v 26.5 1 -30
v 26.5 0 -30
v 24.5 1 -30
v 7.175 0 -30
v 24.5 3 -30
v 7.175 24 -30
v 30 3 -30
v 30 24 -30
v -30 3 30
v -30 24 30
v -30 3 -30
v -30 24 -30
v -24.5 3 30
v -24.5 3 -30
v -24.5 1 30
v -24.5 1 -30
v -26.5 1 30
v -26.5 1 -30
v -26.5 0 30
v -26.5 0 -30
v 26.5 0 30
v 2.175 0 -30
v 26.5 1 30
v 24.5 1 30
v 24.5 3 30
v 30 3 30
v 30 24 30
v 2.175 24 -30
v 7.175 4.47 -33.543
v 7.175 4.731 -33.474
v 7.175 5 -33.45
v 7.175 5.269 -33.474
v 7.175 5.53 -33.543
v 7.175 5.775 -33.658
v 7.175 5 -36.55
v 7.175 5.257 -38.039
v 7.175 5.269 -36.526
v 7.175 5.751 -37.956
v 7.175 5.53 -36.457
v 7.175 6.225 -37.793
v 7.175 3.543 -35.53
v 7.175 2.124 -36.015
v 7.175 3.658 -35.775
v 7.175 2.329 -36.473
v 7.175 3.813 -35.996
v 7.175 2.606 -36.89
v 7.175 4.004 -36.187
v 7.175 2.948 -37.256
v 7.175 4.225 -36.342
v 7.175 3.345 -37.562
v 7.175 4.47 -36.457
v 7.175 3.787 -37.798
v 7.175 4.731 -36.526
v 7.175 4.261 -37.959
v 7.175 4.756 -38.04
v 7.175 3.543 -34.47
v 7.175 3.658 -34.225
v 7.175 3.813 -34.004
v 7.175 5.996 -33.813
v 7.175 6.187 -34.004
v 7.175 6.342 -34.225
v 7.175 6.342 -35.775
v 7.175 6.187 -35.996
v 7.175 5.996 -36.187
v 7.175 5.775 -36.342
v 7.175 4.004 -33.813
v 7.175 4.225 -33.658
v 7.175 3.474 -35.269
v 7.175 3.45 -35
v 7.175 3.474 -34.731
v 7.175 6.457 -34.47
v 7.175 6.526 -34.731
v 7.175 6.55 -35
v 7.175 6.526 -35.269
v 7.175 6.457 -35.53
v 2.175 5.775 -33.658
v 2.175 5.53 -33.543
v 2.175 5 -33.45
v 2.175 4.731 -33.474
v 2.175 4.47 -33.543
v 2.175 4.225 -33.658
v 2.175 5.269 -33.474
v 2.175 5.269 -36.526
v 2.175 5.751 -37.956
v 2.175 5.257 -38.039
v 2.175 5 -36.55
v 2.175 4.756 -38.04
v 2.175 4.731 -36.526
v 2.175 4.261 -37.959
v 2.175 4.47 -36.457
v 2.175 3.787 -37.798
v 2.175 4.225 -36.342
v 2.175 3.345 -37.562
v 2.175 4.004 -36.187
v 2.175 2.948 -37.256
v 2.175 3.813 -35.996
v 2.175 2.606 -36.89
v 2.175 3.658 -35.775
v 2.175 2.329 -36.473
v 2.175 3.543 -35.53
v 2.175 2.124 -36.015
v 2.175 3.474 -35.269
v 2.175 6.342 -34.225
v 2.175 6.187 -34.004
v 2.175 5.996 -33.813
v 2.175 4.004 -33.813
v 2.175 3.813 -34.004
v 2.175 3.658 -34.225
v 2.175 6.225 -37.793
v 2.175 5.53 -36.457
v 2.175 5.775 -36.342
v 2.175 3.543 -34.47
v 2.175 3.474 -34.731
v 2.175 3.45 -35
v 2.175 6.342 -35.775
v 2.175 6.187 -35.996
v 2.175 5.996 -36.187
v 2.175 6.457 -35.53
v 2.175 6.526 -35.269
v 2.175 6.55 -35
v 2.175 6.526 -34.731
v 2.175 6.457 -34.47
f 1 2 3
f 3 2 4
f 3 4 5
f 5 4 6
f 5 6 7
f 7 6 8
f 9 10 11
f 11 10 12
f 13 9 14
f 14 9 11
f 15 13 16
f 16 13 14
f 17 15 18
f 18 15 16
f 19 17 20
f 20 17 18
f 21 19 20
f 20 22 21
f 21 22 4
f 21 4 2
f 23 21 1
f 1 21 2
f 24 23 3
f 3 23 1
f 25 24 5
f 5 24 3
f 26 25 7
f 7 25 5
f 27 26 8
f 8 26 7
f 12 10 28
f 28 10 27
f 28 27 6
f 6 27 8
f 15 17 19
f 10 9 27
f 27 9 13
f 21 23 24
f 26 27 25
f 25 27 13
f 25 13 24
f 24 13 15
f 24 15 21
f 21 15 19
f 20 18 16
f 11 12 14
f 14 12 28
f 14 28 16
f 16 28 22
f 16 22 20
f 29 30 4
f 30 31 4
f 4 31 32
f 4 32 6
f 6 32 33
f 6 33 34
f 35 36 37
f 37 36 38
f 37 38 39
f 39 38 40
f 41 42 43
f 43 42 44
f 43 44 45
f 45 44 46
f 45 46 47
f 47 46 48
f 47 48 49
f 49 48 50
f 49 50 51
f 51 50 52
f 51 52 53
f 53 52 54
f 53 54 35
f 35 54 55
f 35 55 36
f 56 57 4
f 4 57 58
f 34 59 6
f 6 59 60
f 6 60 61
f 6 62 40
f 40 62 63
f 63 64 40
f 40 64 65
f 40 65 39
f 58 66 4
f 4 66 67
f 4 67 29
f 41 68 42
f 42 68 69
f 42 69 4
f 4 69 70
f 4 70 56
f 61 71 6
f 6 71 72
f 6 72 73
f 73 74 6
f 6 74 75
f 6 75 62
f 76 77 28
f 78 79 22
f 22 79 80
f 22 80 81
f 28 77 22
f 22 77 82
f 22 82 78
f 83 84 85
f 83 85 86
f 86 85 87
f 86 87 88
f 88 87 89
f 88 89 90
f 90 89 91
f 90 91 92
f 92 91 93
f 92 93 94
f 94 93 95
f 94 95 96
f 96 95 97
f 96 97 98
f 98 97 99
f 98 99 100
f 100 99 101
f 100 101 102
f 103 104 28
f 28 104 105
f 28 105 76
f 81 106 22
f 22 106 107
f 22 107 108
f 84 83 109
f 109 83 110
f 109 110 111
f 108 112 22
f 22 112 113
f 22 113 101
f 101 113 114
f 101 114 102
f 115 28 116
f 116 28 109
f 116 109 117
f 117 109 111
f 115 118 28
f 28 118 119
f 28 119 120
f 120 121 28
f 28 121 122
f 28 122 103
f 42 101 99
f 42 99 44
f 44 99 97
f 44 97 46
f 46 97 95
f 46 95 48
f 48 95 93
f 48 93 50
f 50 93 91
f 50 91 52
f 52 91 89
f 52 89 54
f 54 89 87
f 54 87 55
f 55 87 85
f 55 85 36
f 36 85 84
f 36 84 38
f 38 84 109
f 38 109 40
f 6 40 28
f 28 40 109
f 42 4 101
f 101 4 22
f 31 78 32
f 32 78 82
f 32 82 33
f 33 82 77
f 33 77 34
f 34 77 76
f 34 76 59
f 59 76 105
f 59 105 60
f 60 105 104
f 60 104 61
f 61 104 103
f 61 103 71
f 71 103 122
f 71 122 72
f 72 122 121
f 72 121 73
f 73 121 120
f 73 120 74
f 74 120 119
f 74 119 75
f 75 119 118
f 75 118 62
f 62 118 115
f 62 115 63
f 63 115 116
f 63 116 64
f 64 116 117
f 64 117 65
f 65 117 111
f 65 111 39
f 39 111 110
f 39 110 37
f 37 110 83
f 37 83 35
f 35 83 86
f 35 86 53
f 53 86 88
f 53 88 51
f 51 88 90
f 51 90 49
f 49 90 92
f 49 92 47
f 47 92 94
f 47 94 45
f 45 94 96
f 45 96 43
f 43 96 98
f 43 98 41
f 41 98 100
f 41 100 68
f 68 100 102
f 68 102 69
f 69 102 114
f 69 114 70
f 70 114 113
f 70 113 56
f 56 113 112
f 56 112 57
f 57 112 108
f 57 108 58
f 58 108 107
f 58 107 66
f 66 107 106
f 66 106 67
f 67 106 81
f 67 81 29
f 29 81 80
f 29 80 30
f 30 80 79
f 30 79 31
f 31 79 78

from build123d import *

# Parameters (mm, degrees)
BOSS_EXTRUDE1_DEPTH = 30
BOSS_EXTRUDE2_START = 2.175
SKETCH2_R           = 1.55
BOSS_EXTRUDE2_DEPTH = 5


with BuildPart() as part:
    # Sketch1 → Boss-Extrude1 (new, symmetric)
    with BuildSketch(Plane.XY):
        Polygon((-26.5, 1), (-26.5, 0), (26.5, 0), (26.5, 1), (24.5, 1), (24.5, 3), (30, 3), (30, 24), (-30, 24), (-30, 3), (-24.5, 3), (-24.5, 1), align=None)
    extrude(amount=BOSS_EXTRUDE1_DEPTH, both=True)

    # Sketch2 → Boss-Extrude2 (add)
    with BuildSketch(Plane(origin=(0, 0, 0), x_dir=(0, 0, -1), z_dir=(1, 0, 0)).offset(BOSS_EXTRUDE2_START)):
        with BuildLine():
            ThreePointArc((36.015485064, 2.124014936), (37.798326563, 3.786794145), (37.793319851, 6.224689434))
            Line((37.793319851, 6.224689434), (30, 24))
            Line((30, 24), (30, 0))
            Line((30, 0), (36.015485064, 2.124014936))
        make_face()
        with Locations((35, 5)):
            Circle(SKETCH2_R, mode=Mode.SUBTRACT)
    extrude(amount=BOSS_EXTRUDE2_DEPTH)


solid = part.part
